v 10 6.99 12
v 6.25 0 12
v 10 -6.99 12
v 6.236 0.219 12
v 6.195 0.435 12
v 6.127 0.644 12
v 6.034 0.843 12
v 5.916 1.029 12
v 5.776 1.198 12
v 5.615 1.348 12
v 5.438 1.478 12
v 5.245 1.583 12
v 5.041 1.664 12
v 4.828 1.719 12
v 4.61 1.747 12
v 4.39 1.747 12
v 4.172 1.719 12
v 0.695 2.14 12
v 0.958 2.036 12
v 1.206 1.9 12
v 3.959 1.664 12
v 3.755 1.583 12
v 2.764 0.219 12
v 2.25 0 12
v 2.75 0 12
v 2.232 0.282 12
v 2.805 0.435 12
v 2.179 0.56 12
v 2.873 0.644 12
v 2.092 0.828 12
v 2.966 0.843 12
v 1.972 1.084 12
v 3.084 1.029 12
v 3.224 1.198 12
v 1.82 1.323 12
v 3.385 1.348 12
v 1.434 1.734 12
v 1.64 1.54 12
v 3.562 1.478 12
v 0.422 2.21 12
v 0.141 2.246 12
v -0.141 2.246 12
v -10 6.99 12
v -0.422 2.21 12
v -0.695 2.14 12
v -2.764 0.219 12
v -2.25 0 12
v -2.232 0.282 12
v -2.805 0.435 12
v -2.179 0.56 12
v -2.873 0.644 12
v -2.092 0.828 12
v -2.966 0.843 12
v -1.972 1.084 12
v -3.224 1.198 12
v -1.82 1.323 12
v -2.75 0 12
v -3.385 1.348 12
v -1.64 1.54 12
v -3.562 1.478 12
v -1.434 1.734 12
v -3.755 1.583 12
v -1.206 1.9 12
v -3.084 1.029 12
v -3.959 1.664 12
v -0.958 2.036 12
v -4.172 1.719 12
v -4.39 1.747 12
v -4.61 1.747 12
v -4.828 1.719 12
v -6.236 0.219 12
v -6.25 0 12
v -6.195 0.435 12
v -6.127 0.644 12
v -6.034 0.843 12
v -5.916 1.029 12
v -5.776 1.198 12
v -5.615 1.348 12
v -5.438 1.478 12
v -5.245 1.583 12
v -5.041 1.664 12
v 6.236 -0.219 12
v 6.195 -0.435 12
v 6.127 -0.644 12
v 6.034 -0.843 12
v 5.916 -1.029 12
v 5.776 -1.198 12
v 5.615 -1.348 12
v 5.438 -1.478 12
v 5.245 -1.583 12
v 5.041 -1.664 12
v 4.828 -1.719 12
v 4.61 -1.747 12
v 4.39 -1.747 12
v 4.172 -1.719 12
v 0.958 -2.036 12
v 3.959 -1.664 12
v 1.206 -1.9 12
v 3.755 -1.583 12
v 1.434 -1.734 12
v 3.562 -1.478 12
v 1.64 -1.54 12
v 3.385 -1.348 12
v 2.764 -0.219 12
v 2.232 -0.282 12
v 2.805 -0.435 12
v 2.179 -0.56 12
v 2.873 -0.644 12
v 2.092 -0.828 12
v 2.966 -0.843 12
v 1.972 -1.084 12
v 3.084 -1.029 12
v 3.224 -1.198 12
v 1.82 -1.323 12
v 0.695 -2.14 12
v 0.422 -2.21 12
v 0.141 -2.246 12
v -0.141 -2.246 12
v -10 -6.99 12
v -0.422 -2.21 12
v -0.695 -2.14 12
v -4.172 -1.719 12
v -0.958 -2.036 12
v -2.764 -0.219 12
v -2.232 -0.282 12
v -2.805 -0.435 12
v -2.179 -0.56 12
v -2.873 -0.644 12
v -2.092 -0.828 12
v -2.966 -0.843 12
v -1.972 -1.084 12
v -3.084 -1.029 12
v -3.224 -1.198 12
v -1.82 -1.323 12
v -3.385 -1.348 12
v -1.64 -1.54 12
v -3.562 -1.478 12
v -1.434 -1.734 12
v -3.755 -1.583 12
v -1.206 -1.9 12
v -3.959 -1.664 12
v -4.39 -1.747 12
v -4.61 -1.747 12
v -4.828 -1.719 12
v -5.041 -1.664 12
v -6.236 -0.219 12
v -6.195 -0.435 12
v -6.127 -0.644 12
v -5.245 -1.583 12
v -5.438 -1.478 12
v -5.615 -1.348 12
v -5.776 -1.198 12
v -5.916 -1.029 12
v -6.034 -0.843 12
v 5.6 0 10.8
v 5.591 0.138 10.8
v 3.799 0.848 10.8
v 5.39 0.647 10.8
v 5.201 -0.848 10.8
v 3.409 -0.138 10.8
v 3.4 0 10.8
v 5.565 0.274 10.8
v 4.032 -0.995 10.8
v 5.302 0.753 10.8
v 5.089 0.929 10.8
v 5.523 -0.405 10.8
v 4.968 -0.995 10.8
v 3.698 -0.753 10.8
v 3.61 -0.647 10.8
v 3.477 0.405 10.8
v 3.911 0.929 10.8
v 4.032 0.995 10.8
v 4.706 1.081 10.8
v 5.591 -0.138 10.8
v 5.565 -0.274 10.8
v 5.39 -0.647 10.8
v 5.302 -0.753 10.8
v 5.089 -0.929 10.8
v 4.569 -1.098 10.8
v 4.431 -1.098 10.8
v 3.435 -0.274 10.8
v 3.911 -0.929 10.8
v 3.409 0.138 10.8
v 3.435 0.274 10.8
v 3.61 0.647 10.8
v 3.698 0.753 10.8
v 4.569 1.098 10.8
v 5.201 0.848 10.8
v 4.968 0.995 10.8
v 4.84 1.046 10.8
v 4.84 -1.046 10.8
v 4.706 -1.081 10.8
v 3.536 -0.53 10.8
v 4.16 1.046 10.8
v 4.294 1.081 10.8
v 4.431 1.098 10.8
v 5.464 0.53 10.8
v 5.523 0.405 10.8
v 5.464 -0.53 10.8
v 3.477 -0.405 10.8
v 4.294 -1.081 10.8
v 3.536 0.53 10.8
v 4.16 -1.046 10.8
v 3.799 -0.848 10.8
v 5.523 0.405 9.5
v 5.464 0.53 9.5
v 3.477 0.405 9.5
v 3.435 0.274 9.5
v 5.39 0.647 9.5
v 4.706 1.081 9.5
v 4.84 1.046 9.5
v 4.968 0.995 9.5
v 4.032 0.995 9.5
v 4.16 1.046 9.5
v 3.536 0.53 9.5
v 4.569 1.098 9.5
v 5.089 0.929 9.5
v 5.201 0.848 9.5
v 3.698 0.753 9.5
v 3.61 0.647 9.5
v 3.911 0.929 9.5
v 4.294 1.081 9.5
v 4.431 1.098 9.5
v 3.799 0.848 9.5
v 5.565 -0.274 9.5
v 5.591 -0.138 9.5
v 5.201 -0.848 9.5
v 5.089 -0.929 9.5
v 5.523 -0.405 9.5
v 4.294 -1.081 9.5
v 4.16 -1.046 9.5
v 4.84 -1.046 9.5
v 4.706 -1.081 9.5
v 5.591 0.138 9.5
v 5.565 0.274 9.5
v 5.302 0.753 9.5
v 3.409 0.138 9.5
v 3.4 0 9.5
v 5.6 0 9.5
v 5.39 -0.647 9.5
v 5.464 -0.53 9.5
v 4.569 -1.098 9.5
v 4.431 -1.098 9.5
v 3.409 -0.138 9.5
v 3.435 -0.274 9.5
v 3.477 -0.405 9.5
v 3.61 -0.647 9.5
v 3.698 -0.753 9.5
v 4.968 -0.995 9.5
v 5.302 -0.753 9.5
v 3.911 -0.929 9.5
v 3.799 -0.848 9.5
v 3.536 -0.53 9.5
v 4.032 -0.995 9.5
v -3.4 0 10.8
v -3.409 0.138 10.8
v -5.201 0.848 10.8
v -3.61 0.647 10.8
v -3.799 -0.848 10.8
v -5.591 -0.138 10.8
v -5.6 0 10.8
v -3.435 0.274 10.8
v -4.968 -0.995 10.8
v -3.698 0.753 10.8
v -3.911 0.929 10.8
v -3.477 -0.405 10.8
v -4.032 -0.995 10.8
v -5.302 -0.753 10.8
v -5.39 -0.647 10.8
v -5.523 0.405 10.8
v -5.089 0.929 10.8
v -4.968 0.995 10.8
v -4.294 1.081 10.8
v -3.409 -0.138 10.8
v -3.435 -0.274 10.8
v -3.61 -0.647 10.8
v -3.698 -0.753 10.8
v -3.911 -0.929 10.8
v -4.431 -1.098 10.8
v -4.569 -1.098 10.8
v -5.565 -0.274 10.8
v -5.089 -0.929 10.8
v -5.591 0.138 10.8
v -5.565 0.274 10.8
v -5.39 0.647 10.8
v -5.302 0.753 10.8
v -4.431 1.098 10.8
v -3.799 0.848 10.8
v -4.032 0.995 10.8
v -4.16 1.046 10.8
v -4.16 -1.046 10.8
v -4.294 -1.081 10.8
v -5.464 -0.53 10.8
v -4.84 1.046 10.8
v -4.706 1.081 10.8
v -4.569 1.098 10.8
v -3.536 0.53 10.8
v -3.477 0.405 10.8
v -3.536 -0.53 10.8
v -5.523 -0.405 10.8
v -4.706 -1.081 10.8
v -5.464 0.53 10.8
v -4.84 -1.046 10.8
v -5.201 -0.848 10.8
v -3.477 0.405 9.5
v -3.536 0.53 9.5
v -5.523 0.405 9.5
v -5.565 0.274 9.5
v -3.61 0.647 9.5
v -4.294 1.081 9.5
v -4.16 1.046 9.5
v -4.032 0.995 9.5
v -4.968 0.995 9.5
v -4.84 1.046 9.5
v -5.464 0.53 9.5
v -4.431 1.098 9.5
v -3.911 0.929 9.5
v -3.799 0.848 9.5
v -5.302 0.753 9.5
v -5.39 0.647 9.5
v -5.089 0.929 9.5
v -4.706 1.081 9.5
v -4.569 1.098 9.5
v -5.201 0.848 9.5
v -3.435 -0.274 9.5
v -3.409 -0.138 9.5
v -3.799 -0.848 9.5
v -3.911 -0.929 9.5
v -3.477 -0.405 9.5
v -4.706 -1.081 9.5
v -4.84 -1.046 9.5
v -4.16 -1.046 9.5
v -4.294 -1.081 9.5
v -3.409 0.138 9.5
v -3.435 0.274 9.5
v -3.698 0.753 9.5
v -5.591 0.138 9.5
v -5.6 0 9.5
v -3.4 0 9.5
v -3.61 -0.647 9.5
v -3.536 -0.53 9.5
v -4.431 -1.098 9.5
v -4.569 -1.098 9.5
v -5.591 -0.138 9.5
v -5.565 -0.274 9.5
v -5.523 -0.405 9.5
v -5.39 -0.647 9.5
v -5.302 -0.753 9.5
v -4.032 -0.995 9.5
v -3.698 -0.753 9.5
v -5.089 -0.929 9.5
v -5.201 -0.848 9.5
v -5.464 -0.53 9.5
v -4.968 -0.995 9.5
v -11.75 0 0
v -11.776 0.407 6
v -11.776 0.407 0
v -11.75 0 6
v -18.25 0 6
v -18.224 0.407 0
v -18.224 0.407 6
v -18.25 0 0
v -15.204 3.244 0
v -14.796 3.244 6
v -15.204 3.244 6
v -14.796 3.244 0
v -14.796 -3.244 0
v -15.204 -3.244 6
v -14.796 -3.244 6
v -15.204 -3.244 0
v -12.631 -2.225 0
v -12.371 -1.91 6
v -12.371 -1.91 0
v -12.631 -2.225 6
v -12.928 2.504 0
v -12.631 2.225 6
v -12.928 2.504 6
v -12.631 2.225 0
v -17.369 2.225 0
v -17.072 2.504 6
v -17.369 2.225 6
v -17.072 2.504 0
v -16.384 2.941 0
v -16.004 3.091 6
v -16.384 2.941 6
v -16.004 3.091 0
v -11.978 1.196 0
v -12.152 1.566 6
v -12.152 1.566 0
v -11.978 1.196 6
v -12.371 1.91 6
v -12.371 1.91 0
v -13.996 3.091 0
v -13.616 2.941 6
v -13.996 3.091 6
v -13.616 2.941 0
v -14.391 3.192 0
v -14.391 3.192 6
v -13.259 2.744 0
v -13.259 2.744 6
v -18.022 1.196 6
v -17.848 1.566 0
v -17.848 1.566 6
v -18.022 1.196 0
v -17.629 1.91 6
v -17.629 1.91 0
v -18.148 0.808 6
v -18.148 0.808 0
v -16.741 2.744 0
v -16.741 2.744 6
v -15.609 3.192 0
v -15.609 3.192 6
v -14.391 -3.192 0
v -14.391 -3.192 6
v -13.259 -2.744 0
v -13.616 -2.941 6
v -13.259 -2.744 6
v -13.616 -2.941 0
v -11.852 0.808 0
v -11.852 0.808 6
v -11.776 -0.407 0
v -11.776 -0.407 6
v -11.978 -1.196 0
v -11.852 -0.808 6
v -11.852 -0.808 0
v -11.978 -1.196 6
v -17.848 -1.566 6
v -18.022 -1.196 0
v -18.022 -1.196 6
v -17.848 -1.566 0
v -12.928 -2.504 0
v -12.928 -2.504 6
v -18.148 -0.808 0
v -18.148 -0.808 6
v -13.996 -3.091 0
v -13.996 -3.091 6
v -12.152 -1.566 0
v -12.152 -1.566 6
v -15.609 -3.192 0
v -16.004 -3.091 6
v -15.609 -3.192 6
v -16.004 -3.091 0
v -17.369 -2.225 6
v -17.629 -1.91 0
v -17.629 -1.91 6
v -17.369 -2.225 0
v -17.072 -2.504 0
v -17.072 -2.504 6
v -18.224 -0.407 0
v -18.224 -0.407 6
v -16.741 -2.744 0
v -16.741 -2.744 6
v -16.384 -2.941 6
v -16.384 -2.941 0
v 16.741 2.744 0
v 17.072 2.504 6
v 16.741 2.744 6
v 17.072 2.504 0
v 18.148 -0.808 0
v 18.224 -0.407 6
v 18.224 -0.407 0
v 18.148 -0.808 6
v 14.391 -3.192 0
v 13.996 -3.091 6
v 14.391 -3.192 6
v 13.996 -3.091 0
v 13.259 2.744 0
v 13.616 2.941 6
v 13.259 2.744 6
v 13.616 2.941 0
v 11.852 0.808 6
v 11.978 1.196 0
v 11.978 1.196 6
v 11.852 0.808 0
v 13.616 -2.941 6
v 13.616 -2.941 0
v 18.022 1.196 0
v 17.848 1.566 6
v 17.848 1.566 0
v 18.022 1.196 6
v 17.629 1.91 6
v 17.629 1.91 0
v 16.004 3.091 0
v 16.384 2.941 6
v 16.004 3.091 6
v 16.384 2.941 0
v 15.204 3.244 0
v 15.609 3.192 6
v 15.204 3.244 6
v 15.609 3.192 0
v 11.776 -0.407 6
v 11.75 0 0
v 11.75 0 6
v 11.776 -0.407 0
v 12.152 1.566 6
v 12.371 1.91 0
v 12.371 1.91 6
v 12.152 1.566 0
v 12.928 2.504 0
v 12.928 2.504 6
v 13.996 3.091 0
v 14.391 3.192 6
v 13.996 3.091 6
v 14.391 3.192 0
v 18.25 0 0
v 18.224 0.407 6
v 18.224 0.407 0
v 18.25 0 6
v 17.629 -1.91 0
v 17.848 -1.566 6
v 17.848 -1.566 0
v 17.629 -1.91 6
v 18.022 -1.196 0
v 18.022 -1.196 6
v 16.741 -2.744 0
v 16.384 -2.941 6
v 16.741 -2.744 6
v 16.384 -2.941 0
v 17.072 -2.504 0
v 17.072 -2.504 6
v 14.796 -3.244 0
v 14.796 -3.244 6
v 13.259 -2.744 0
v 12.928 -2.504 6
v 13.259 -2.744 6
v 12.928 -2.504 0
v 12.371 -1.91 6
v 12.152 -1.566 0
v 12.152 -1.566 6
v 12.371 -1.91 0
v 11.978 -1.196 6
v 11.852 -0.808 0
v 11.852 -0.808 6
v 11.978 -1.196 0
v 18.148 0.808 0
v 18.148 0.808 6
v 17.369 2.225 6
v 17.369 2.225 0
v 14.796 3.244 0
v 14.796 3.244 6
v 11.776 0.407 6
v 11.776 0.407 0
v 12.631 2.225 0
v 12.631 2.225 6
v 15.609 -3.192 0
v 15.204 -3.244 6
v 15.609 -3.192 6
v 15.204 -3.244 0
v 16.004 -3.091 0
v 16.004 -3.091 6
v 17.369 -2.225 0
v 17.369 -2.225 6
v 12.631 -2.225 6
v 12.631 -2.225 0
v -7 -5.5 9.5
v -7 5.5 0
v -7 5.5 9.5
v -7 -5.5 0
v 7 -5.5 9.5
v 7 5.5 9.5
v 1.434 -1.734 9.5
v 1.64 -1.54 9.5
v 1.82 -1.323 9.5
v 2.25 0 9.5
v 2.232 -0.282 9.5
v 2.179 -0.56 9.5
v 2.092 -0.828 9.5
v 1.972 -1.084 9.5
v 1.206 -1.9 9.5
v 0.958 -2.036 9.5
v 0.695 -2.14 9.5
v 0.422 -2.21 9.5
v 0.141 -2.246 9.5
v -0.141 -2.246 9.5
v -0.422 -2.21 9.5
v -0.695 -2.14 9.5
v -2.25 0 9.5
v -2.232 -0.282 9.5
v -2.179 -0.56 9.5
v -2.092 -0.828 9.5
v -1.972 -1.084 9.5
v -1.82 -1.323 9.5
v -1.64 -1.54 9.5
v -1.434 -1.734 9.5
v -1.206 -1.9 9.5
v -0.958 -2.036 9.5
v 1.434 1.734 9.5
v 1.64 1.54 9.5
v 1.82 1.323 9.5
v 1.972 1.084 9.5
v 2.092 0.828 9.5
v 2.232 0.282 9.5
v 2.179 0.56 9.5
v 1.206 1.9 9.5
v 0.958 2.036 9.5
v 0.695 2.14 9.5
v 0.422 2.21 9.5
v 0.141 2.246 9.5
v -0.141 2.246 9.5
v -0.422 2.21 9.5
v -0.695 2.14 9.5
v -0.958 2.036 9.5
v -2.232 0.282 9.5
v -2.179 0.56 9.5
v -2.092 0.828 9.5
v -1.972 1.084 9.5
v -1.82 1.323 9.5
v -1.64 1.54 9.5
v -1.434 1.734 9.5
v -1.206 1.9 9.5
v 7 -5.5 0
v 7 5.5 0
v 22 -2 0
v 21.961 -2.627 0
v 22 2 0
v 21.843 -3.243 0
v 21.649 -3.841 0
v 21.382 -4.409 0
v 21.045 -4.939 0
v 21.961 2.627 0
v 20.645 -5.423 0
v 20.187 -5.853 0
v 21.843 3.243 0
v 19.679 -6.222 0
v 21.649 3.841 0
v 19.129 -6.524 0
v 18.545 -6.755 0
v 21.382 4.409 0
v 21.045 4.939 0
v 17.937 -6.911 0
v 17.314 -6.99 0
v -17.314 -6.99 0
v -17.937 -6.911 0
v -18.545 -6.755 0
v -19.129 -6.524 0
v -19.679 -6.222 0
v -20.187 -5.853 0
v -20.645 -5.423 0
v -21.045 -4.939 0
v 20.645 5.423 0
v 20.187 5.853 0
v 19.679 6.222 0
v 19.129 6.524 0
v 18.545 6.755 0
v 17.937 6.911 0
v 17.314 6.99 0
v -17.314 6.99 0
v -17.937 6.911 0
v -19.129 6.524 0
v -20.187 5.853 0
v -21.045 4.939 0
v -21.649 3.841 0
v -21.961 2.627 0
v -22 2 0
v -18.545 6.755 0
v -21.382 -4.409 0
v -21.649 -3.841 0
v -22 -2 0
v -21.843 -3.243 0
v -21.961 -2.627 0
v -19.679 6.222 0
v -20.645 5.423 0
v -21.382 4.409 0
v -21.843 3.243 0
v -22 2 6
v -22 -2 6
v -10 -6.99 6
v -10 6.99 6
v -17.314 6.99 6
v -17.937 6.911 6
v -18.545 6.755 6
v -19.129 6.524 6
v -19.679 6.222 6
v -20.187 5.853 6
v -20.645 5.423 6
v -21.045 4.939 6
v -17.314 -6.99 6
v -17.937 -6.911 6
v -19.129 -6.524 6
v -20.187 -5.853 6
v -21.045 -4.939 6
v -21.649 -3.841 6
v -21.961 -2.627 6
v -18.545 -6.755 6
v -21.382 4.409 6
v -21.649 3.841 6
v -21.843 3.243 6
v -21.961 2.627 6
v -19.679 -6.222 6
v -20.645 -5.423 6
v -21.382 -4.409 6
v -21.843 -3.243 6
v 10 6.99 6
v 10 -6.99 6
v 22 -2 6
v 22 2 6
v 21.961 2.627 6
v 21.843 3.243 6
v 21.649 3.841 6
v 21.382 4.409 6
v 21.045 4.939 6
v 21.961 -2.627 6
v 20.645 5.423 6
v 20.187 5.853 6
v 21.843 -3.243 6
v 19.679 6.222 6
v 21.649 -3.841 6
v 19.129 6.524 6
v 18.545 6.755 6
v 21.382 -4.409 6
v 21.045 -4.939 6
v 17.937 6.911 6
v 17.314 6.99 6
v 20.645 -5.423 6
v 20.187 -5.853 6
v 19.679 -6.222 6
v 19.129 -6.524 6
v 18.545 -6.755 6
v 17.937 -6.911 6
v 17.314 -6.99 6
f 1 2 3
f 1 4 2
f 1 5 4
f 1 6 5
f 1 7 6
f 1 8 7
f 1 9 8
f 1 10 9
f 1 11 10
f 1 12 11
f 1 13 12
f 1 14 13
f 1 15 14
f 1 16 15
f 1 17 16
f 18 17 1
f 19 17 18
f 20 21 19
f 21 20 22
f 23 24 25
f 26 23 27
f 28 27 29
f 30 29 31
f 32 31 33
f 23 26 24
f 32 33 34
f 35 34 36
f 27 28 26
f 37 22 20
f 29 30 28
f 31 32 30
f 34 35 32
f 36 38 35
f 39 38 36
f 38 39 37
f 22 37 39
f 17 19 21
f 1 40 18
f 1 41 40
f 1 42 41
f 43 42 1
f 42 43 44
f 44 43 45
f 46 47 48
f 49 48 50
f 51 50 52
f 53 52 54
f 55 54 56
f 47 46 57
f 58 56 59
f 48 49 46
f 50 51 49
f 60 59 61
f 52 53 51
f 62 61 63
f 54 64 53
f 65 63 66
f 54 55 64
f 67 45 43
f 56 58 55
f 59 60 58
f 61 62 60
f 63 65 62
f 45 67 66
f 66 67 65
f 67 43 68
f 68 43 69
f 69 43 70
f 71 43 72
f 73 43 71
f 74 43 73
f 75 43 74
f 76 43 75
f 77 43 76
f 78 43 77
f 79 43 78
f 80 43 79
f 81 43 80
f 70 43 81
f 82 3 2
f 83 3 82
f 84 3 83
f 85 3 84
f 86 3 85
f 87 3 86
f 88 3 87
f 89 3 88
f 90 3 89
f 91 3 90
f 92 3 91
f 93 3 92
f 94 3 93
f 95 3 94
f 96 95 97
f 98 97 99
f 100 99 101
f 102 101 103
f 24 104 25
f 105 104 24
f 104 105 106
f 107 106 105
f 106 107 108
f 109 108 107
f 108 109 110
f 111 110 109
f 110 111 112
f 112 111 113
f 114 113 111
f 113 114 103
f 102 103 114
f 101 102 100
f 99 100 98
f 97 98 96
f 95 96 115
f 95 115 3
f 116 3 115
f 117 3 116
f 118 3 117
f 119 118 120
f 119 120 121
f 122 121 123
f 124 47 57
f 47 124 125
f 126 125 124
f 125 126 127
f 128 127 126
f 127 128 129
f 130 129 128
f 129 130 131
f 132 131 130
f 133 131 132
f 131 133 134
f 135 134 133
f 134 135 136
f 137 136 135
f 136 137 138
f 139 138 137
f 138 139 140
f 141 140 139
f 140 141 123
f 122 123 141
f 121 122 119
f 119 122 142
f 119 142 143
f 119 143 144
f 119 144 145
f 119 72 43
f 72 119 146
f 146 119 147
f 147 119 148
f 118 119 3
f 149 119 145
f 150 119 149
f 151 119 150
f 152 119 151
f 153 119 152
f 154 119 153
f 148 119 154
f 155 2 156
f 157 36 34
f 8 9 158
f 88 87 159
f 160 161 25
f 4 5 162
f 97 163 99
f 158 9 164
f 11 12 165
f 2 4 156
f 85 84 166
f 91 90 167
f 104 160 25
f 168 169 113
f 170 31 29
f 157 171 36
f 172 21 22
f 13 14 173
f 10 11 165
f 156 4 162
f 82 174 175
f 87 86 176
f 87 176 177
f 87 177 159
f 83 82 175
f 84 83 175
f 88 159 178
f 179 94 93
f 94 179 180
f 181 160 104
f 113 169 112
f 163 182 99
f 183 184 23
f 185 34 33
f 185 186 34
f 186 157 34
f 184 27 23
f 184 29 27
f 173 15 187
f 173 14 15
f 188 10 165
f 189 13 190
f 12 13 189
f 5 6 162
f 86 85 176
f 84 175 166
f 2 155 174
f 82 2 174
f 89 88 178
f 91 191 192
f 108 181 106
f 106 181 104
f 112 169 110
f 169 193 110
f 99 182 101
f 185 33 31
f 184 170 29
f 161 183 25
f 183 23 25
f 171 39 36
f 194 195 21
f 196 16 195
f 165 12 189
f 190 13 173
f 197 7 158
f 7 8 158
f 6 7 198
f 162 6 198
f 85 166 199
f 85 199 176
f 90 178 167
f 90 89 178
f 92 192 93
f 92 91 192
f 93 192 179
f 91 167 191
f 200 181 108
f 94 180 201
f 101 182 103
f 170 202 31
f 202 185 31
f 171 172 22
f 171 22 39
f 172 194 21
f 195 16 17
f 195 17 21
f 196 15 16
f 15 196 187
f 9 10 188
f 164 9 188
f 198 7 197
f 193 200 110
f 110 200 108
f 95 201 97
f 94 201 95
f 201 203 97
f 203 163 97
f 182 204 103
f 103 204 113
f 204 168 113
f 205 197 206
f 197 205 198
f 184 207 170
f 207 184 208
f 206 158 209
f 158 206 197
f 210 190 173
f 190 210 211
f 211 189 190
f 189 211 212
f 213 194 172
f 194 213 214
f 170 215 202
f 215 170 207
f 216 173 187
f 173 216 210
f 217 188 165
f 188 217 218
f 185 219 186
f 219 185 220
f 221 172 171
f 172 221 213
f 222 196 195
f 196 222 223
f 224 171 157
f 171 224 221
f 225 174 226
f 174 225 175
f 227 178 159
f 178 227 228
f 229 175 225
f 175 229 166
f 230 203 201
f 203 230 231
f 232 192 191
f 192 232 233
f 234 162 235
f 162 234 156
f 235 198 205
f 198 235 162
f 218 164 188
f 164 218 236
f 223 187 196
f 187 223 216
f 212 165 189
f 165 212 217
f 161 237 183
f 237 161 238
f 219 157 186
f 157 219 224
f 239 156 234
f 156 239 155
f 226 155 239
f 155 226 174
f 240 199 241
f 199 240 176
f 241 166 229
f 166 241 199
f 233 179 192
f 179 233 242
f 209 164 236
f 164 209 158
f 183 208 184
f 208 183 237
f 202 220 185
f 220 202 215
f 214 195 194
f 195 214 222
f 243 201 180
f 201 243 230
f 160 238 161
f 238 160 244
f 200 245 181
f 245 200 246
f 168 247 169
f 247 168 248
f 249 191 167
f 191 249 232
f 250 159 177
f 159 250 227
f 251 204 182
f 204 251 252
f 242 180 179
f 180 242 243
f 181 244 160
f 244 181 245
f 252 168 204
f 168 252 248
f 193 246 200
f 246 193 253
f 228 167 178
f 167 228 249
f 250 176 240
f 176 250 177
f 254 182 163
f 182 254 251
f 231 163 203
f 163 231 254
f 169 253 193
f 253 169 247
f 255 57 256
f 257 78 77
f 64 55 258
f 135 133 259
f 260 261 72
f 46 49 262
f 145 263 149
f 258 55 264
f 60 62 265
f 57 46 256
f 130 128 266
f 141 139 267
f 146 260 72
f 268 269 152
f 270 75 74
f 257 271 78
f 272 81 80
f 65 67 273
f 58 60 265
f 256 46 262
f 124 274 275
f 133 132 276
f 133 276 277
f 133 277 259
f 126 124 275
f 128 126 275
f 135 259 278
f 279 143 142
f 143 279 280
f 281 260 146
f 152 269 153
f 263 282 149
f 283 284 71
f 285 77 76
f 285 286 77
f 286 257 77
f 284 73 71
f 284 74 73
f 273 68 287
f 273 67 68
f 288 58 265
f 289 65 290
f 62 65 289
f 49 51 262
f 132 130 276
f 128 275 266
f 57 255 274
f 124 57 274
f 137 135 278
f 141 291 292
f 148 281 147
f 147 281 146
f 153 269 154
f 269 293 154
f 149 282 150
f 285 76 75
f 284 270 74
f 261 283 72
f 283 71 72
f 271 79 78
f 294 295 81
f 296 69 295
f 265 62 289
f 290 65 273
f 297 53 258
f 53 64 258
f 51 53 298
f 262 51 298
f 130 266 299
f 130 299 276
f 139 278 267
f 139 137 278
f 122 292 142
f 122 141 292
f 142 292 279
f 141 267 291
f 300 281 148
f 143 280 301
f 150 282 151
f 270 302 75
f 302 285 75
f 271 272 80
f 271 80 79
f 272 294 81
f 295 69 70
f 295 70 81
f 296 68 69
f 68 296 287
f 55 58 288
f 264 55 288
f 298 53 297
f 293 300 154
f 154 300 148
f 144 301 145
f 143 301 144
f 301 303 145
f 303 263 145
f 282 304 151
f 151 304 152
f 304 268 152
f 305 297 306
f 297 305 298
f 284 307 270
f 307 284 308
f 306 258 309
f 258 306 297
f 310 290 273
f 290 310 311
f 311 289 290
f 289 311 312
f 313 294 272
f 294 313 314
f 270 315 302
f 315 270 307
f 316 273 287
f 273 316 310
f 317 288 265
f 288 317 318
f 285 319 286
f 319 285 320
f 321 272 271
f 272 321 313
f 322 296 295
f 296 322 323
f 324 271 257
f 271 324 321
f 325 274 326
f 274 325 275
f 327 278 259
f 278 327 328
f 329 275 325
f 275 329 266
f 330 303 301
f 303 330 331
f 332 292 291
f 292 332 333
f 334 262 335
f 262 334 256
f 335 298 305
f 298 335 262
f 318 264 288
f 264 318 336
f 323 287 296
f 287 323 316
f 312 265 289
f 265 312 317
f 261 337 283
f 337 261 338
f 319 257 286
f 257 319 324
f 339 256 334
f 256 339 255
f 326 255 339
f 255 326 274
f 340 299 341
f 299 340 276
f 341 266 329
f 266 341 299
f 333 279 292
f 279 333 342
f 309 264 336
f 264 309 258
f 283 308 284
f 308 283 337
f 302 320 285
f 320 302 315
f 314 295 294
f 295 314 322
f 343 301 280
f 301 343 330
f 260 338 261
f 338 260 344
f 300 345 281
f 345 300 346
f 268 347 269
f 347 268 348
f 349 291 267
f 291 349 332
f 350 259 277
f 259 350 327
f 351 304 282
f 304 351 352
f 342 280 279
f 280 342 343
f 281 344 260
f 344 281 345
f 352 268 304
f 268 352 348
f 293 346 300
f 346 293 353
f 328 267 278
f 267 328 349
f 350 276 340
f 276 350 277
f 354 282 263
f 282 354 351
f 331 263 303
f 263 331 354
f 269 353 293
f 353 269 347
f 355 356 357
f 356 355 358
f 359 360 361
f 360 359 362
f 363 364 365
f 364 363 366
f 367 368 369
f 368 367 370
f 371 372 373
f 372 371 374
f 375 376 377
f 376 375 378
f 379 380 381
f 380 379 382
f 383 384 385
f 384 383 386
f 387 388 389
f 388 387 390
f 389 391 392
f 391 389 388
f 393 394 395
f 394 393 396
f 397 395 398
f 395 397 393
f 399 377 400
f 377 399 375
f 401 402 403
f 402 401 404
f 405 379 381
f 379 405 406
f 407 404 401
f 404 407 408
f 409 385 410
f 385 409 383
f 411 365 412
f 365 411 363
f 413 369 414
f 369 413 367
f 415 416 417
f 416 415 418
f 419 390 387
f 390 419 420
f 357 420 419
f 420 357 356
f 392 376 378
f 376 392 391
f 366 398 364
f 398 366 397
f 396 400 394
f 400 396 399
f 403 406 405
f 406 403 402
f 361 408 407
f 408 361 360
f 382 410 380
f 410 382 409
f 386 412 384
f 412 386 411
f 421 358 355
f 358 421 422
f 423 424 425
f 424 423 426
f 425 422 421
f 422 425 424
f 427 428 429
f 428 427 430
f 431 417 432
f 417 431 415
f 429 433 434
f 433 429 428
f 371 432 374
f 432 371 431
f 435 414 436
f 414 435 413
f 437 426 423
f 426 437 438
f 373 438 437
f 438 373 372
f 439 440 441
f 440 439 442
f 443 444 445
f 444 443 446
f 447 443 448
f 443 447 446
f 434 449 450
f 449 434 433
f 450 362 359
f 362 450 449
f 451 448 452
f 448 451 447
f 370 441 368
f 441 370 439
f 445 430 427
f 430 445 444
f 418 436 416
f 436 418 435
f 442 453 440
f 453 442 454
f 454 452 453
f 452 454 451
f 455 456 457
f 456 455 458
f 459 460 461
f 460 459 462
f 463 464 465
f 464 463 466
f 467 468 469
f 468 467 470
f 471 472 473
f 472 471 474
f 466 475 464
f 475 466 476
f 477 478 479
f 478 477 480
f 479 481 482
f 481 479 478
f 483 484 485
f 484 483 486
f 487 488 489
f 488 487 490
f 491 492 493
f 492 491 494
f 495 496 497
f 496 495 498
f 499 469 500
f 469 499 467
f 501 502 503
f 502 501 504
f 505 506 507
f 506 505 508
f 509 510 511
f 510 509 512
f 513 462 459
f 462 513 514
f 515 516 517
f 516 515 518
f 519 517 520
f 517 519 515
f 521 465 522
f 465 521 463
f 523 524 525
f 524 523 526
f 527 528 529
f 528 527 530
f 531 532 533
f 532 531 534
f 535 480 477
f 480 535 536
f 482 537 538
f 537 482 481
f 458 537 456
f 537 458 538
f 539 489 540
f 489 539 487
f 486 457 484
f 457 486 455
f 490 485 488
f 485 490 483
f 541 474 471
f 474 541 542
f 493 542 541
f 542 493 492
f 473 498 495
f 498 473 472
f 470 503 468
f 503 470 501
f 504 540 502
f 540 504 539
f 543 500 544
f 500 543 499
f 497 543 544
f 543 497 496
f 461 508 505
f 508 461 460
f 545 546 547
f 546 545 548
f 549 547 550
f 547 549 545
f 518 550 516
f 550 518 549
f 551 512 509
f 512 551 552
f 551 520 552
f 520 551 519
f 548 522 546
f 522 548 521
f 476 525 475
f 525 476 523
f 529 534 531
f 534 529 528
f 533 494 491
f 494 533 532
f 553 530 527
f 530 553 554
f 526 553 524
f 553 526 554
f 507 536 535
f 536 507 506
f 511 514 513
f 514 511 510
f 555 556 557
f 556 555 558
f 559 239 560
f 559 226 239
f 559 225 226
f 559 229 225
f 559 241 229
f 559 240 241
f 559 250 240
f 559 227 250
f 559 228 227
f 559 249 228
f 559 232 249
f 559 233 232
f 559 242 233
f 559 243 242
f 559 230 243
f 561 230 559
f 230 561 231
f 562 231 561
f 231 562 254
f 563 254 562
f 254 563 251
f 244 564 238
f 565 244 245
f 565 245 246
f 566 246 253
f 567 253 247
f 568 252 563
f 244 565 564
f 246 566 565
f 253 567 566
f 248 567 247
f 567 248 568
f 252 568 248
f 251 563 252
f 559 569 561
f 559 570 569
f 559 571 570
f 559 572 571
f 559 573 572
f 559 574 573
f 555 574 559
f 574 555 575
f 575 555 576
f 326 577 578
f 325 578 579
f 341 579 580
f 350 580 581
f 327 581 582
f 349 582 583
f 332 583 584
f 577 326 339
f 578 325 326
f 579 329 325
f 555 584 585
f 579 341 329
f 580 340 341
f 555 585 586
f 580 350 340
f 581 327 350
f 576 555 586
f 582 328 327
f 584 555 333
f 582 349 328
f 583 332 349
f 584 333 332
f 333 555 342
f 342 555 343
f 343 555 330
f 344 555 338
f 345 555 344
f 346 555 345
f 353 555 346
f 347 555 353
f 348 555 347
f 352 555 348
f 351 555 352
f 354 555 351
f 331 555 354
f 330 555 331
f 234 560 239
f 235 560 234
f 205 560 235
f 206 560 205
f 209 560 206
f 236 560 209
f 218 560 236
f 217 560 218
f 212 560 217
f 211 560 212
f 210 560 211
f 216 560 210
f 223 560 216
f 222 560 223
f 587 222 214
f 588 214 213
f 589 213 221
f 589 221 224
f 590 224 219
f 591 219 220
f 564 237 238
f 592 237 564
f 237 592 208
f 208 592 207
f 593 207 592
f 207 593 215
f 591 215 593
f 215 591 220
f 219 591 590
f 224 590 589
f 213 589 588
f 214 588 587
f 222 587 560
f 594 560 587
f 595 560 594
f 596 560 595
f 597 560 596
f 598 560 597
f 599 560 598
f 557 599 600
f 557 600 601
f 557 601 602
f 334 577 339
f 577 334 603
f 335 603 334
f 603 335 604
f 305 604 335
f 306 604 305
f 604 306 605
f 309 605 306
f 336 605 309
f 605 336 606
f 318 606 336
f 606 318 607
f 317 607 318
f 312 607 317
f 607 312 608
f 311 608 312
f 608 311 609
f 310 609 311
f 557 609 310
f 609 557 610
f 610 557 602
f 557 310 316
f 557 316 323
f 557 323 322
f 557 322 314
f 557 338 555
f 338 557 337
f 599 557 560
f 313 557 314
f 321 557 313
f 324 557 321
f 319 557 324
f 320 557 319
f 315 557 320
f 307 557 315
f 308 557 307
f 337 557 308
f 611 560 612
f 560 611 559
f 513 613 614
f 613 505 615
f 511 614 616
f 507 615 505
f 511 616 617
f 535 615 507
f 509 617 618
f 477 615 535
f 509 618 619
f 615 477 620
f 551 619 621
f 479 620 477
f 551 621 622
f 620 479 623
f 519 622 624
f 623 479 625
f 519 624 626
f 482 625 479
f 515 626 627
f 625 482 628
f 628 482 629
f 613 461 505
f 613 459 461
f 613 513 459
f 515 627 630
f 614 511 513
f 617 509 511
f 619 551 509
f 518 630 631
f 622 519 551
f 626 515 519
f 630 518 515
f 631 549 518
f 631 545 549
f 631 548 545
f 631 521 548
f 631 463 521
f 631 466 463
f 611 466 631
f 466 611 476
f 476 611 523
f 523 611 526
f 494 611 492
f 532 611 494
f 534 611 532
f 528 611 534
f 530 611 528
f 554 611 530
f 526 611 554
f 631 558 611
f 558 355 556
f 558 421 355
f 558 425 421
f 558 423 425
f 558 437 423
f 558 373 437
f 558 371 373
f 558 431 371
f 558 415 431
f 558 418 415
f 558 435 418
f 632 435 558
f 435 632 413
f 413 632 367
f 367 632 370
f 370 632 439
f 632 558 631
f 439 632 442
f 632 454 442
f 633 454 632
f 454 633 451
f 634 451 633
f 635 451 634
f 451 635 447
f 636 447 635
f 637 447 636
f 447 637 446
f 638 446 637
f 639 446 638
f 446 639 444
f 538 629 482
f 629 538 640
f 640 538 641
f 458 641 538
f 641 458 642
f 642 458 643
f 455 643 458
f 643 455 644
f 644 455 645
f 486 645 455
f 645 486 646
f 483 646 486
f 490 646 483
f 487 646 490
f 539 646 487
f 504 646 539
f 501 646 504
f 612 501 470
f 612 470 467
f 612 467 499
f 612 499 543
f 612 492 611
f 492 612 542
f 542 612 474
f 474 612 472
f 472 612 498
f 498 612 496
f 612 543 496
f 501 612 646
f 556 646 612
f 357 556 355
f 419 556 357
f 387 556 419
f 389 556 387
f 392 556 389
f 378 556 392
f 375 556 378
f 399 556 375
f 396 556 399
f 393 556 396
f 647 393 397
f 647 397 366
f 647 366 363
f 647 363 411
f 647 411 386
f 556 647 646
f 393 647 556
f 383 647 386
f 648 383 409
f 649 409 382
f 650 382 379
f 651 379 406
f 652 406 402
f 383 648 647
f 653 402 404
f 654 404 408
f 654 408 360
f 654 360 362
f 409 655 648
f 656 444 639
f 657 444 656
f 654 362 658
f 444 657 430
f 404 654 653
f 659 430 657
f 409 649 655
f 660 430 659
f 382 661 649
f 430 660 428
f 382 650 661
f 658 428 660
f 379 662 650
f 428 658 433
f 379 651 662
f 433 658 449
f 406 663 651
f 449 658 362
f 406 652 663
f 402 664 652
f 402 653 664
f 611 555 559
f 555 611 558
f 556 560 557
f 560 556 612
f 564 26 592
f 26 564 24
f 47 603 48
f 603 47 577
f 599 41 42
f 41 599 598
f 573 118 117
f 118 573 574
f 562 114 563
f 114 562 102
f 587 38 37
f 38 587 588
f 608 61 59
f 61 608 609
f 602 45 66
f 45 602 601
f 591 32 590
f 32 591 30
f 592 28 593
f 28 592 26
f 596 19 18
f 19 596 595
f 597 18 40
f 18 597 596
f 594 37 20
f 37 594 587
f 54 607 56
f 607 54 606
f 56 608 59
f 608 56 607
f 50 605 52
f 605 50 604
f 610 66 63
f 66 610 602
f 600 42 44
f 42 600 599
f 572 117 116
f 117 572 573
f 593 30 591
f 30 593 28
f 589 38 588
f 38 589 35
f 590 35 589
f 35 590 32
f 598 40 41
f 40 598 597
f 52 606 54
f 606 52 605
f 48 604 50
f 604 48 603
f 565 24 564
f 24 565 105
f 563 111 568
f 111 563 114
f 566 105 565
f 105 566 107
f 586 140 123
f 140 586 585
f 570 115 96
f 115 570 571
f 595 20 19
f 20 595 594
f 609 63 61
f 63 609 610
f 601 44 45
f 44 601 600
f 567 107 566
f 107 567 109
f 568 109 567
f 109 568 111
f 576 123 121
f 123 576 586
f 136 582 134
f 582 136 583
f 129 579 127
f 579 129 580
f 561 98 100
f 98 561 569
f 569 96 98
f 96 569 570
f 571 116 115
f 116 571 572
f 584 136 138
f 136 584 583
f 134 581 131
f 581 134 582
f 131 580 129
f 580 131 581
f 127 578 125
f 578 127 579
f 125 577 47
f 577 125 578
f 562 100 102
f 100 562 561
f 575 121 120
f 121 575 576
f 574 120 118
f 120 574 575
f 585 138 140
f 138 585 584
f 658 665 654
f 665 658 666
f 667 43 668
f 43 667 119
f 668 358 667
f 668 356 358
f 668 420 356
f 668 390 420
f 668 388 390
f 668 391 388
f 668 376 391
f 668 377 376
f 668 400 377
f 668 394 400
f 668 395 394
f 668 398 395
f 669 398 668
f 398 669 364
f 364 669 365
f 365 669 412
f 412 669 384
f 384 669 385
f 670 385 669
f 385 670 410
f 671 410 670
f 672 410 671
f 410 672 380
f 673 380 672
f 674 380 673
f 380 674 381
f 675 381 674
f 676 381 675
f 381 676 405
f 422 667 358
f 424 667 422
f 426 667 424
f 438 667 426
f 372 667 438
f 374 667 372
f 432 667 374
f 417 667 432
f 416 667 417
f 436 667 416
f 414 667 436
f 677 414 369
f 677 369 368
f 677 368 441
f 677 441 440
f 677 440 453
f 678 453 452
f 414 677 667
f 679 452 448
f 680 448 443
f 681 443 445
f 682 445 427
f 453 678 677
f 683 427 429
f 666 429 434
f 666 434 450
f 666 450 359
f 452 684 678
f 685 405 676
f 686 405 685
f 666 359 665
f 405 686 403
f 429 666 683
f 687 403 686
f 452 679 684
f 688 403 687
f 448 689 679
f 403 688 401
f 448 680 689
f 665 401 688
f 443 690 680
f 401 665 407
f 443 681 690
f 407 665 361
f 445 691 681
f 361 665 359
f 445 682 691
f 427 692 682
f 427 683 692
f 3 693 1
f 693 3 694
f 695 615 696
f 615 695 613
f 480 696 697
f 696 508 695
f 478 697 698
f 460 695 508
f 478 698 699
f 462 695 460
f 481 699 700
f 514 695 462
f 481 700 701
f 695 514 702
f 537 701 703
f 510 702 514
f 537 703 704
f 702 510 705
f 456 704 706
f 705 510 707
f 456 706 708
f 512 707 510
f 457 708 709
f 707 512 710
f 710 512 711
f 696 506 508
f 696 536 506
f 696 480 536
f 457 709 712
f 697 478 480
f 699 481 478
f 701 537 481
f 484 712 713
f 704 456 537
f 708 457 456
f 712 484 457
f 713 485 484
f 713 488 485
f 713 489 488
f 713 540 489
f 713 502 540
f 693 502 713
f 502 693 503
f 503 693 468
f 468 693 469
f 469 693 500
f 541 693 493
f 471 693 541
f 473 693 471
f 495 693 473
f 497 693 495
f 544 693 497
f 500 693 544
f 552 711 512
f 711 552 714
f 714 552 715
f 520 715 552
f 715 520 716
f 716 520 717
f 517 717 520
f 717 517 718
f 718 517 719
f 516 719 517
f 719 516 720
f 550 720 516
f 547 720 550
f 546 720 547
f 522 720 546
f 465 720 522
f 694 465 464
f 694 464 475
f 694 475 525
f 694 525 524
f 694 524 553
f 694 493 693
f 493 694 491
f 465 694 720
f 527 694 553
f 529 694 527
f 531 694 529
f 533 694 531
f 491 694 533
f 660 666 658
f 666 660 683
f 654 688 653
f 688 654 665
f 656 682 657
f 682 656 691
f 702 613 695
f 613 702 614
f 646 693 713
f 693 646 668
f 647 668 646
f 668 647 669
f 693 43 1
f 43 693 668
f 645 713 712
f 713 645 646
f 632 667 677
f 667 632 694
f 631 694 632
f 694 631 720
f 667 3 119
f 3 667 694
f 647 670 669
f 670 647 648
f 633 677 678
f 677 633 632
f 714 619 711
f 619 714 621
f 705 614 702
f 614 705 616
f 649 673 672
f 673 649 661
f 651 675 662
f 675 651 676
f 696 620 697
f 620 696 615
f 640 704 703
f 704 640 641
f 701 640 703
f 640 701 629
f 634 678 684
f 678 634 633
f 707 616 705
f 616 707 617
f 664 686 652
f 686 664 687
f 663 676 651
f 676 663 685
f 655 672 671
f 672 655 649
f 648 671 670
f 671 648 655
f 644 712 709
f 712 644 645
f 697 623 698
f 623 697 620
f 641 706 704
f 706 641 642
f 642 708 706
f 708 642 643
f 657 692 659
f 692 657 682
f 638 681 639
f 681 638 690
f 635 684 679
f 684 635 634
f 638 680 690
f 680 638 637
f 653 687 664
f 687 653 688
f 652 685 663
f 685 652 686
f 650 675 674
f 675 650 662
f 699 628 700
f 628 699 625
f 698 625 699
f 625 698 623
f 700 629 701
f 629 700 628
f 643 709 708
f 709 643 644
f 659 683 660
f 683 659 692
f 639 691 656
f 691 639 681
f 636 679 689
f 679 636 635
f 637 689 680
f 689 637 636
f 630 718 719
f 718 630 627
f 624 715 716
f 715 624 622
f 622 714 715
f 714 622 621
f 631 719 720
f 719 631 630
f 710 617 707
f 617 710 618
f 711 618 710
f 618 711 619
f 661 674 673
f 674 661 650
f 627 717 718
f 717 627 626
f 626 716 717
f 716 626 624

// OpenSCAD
$fn = 50;


difference() {
	union() {
		hull() {
			translate(v = [-17.0000000000, 2.0000000000, 0]) {
				cylinder(h = 12, r = 5);
			}
			translate(v = [17.0000000000, 2.0000000000, 0]) {
				cylinder(h = 12, r = 5);
			}
			translate(v = [-17.0000000000, -2.0000000000, 0]) {
				cylinder(h = 12, r = 5);
			}
			translate(v = [17.0000000000, -2.0000000000, 0]) {
				cylinder(h = 12, r = 5);
			}
		}
	}
	union() {
		translate(v = [4.5000000000, 0, 12]) {
			rotate(a = [0, 0, 0]) {
				difference() {
					union() {
						translate(v = [0, 0, -4.0000000000]) {
							cylinder(h = 4, r = 0.8500000000);
						}
						translate(v = [0, 0, -1.2000000000]) {
							cylinder(h = 1.2000000000, r1 = 1.1000000000, r2 = 1.7500000000);
						}
						translate(v = [0, 0, -4.0000000000]) {
							cylinder(h = 4, r = 1.1000000000);
						}
						translate(v = [0, 0, -4.0000000000]) {
							cylinder(h = 4, r = 0.8500000000);
						}
					}
					union();
				}
			}
		}
		translate(v = [-4.5000000000, 0, 12]) {
			rotate(a = [0, 0, 0]) {
				difference() {
					union() {
						translate(v = [0, 0, -4.0000000000]) {
							cylinder(h = 4, r = 0.8500000000);
						}
						translate(v = [0, 0, -1.2000000000]) {
							cylinder(h = 1.2000000000, r1 = 1.1000000000, r2 = 1.7500000000);
						}
						translate(v = [0, 0, -4.0000000000]) {
							cylinder(h = 4, r = 1.1000000000);
						}
						translate(v = [0, 0, -4.0000000000]) {
							cylinder(h = 4, r = 0.8500000000);
						}
					}
					union();
				}
			}
		}
		translate(v = [-15.0000000000, 0.0000000000, -100.0000000000]) {
			cylinder(h = 200, r = 3.2500000000);
		}
		translate(v = [15.0000000000, 0.0000000000, -100.0000000000]) {
			cylinder(h = 200, r = 3.2500000000);
		}
		translate(v = [15.0000000000, 0.0000000000, -100.0000000000]) {
			cylinder(h = 200, r = 3.2500000000);
		}
		translate(v = [-15.0000000000, 0.0000000000, -100.0000000000]) {
			cylinder(h = 200, r = 1.8000000000);
		}
		translate(v = [15.0000000000, 0.0000000000, -100.0000000000]) {
			cylinder(h = 200, r = 1.8000000000);
		}
		translate(v = [-15.0000000000, 0.0000000000, -100.0000000000]) {
			cylinder(h = 200, r = 1.8000000000);
		}
		translate(v = [15.0000000000, 0.0000000000, -100.0000000000]) {
			cylinder(h = 200, r = 1.8000000000);
		}
		translate(v = [-15.0000000000, 0.0000000000, -100.0000000000]) {
			cylinder(h = 200, r = 1.8000000000);
		}
		translate(v = [15.0000000000, 0.0000000000, -100.0000000000]) {
			cylinder(h = 200, r = 1.8000000000);
		}
		translate(v = [-7.0000000000, -5.5000000000, 0]) {
			cube(size = [14, 11, 9.5000000000]);
		}
		cylinder(h = 12, r = 2.2500000000);
		translate(v = [-22.0000000000, -7.0000000000, 6]) {
			cube(size = [12, 14, 6]);
		}
		translate(v = [10.0000000000, -7.0000000000, 6]) {
			cube(size = [12, 14, 6]);
		}
	}
}
